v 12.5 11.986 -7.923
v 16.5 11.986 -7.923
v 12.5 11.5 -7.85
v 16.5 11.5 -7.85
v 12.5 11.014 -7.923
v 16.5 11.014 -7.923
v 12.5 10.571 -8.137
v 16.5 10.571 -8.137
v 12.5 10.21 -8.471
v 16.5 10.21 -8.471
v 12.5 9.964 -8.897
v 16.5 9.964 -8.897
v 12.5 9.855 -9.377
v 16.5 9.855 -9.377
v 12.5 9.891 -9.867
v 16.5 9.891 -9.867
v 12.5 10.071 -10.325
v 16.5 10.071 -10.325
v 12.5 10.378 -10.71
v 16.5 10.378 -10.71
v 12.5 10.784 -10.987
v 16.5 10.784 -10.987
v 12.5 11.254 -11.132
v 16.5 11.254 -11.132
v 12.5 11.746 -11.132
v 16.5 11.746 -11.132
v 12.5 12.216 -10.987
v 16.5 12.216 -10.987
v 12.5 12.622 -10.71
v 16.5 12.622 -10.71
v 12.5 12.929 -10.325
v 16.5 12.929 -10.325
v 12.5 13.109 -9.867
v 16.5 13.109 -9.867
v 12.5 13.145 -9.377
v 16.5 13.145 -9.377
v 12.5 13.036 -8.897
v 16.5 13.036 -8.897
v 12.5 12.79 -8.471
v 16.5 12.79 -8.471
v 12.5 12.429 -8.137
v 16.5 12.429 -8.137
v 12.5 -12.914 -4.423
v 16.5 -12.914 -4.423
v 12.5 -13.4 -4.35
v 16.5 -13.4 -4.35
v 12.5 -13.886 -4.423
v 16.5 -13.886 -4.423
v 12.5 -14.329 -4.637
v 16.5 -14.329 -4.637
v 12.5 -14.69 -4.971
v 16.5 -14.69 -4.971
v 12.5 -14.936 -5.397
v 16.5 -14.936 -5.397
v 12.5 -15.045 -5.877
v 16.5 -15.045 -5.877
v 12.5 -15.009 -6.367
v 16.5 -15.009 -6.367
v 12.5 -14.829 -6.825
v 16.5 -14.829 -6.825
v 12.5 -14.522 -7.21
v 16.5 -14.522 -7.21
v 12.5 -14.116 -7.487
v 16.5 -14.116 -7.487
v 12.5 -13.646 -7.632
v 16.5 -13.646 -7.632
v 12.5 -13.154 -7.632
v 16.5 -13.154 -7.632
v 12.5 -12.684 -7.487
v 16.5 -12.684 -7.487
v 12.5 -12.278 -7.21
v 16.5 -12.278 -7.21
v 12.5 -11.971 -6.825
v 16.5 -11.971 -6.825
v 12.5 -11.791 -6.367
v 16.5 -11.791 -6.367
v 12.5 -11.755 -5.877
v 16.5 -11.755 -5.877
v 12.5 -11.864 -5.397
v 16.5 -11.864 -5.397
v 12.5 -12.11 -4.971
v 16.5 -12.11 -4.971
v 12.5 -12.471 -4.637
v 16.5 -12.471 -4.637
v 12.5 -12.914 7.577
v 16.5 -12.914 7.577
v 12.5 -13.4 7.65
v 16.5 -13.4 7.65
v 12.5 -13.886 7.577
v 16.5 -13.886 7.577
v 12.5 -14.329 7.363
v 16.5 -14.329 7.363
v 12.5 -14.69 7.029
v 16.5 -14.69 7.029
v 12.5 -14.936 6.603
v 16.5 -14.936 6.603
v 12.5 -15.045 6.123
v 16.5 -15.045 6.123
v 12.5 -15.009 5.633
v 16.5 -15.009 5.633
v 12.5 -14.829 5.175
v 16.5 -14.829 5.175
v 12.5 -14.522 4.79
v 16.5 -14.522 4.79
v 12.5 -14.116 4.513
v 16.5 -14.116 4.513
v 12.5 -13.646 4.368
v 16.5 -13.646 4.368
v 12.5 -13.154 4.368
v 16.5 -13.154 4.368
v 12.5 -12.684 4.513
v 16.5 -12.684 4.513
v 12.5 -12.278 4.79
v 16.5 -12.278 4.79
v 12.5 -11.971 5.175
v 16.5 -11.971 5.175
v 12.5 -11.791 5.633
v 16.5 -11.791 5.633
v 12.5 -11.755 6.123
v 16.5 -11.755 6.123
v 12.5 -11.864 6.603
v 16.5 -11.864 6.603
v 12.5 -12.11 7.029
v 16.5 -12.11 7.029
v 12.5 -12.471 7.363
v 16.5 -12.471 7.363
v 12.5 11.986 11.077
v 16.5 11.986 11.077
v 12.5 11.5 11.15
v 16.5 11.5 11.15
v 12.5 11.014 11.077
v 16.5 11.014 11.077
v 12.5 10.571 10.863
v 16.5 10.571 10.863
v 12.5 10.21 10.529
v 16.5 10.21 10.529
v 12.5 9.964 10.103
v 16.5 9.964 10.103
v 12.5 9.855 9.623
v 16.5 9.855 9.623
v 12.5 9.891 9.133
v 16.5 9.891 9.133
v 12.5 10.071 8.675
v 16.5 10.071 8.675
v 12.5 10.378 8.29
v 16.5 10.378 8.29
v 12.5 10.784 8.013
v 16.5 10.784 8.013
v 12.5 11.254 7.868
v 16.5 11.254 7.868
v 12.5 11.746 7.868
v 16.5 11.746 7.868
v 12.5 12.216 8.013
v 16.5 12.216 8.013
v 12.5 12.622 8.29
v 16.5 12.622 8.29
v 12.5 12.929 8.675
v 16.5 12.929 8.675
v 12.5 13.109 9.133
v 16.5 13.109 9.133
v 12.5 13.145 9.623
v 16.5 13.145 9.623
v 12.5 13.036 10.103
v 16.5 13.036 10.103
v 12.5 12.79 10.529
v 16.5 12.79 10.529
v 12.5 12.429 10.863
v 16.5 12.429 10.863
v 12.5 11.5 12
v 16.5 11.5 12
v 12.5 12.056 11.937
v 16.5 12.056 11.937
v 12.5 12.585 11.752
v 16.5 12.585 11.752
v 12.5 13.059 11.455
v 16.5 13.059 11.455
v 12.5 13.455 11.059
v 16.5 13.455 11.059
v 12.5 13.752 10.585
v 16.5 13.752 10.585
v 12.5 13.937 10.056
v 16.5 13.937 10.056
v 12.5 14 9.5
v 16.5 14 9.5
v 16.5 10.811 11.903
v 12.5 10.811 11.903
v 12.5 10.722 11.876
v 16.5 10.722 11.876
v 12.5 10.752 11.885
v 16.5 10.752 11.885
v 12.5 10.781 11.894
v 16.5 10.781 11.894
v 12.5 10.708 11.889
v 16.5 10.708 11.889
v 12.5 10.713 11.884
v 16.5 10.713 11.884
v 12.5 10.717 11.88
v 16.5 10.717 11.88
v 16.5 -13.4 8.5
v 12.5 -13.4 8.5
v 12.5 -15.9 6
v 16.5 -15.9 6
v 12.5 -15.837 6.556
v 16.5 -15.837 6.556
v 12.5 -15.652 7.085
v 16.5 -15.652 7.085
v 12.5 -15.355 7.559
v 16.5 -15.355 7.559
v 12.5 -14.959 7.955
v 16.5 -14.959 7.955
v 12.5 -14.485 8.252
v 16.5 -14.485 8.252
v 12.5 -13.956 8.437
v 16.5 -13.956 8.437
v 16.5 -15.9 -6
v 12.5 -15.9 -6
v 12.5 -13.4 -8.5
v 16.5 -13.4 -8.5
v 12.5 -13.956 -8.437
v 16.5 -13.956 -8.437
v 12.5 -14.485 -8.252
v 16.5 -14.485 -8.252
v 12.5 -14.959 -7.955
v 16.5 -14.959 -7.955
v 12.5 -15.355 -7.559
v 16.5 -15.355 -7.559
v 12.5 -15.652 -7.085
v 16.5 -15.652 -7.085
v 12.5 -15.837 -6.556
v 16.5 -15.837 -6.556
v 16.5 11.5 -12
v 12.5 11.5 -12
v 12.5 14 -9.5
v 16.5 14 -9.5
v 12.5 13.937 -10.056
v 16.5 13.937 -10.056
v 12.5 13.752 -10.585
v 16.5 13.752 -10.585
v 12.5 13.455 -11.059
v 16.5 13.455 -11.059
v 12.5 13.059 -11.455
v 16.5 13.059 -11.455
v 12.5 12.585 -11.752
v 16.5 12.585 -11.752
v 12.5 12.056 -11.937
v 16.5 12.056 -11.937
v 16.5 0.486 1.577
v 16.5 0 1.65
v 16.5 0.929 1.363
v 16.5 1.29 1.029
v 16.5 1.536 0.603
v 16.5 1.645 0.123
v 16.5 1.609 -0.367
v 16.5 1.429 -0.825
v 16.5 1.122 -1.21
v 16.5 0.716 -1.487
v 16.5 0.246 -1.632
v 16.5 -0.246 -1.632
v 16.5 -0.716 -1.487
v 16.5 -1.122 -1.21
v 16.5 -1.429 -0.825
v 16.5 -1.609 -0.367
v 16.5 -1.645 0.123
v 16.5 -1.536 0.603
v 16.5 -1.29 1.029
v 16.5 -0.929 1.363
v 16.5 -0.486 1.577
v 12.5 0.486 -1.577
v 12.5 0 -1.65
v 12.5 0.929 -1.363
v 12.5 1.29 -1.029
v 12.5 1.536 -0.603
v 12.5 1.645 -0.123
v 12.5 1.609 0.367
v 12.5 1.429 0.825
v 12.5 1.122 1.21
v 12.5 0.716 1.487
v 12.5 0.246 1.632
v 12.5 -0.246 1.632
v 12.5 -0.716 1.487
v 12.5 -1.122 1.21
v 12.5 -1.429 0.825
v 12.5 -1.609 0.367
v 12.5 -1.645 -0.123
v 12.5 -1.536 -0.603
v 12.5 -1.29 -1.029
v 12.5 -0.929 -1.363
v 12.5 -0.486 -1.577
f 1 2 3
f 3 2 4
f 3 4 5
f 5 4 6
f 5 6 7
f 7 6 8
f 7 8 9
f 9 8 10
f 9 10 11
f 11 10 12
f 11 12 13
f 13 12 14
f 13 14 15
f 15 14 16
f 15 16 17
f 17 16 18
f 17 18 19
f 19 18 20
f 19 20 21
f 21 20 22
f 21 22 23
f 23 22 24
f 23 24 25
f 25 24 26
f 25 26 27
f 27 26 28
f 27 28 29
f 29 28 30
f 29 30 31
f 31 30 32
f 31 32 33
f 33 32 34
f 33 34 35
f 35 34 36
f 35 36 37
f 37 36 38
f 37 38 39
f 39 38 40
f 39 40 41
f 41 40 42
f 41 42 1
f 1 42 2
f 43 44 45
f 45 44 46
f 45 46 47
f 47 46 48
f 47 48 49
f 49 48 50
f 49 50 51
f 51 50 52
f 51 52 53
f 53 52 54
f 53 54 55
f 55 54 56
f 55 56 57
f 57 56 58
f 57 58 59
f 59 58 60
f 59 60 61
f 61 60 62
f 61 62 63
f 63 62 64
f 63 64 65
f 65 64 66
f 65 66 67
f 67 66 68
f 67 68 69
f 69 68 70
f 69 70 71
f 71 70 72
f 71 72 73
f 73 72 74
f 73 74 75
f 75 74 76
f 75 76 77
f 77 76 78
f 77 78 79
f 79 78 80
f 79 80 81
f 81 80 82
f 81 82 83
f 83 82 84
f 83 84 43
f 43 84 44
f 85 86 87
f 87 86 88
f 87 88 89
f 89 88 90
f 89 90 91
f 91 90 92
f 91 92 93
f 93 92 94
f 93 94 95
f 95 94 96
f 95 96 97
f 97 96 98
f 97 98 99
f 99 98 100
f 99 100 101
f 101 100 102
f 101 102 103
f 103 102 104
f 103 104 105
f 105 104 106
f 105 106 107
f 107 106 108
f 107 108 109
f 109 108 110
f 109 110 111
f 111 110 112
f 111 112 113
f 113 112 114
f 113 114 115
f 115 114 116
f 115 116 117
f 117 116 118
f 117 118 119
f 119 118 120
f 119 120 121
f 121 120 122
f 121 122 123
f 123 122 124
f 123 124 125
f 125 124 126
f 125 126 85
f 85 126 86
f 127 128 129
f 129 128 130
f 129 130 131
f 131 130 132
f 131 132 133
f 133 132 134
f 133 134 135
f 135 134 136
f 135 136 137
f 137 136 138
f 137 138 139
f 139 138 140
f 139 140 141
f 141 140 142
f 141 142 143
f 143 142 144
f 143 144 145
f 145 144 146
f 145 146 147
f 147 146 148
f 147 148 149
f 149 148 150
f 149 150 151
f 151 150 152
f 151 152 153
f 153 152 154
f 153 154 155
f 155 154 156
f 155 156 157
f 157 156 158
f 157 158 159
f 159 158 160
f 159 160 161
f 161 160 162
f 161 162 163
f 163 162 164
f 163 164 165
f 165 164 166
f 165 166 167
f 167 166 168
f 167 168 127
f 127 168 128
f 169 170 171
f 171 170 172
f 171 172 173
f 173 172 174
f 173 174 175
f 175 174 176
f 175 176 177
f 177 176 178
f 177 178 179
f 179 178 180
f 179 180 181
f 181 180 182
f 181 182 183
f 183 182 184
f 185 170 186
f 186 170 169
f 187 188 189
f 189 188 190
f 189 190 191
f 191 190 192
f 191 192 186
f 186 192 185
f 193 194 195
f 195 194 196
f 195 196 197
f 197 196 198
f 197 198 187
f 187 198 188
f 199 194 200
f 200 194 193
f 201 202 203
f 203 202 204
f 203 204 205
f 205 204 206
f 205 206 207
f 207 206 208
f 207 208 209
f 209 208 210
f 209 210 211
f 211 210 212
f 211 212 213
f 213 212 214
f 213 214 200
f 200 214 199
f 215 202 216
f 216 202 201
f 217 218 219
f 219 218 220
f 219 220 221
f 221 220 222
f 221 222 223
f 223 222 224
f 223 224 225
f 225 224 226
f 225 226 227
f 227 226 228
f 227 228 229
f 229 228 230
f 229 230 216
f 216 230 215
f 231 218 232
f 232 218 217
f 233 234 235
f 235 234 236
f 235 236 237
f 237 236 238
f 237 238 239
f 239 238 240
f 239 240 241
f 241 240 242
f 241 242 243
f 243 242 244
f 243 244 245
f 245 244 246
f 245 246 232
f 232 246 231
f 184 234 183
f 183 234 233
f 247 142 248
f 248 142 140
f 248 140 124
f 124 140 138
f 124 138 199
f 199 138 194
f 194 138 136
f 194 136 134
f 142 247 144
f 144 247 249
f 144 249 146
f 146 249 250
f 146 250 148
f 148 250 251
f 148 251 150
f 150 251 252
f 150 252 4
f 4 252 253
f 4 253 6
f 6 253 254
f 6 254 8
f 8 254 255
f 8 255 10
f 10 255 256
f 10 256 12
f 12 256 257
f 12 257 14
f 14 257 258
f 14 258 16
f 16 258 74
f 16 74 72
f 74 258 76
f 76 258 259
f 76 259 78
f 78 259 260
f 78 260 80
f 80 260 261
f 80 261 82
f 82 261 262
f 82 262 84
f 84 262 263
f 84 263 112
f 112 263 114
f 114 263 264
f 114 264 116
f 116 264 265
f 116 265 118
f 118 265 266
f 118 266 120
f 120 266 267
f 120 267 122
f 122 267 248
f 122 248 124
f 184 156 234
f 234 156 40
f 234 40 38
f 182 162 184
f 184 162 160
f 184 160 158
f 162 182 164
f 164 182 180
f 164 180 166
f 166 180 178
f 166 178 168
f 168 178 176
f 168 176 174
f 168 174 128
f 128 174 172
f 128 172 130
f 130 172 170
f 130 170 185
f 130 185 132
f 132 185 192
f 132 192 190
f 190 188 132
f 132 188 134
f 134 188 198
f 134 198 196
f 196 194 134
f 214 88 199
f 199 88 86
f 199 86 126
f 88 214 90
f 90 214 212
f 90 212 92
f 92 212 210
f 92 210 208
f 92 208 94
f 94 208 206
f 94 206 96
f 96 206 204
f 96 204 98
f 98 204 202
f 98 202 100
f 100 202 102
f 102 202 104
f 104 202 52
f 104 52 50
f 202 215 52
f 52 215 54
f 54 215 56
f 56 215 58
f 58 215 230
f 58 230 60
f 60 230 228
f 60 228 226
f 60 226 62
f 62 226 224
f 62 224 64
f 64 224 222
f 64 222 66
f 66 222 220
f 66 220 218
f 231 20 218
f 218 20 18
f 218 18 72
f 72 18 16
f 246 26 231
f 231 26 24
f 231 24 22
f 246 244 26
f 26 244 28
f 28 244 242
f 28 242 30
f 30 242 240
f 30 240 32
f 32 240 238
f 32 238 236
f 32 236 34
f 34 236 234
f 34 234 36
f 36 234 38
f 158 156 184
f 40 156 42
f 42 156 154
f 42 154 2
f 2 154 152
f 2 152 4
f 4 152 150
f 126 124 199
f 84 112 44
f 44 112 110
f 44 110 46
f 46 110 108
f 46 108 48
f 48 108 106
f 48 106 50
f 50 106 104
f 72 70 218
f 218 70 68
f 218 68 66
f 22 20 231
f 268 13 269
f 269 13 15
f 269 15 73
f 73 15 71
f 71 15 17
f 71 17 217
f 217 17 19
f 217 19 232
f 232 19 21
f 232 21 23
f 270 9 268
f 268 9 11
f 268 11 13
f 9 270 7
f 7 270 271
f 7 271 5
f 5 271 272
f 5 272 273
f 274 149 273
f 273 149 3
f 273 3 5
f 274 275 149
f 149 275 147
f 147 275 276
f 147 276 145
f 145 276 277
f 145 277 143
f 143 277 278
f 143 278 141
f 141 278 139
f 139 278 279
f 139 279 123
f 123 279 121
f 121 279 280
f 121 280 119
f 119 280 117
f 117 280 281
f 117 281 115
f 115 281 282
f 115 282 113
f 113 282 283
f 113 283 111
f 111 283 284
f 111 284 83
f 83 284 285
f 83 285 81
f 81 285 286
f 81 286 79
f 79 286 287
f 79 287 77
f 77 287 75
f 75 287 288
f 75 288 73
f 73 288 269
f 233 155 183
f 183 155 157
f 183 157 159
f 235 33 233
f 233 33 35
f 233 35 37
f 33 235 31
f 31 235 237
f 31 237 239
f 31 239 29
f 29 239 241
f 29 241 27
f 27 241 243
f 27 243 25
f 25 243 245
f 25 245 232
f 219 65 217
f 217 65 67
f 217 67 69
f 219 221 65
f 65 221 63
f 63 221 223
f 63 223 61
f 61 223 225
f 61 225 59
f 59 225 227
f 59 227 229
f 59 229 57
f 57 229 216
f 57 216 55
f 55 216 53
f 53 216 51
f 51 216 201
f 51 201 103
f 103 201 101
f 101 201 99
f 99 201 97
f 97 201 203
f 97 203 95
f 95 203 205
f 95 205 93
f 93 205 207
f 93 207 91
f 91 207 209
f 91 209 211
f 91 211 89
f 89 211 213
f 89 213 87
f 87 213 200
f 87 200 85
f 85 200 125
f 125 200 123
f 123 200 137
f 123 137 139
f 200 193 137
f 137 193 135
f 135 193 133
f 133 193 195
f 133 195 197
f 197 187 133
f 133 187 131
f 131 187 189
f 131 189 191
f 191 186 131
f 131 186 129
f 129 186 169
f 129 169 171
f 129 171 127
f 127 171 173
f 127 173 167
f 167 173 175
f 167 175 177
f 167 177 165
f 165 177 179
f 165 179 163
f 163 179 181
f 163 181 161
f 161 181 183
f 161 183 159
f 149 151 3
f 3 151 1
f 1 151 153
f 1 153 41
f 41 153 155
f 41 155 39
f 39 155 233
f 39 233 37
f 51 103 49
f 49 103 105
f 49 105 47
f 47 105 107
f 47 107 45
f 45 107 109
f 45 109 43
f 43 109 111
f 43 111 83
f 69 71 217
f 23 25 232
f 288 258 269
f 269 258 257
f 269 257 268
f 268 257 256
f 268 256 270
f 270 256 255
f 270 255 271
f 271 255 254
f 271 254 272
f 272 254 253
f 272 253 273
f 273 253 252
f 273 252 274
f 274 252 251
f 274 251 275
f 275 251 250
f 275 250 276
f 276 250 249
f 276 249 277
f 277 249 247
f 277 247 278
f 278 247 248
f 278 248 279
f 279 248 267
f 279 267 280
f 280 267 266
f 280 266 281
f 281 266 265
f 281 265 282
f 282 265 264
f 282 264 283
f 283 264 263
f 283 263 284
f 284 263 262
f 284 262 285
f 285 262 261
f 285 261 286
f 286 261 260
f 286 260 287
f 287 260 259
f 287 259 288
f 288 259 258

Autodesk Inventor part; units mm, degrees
ref_plane "YZ Plane" through (0, 0, 0) normal (1, 0, 0) x (0, 1, 0)
ref_plane "XZ Plane" through (0, 0, 0) normal (0, 1, 0) x (-1, 0, 0)
ref_plane "XY Plane" through (0, 0, 0) normal (0, 0, 1) x (1, 0, 0)
sketch "スケッチ2" plane through (0, 0, 0) normal (0, 1, 0) x (-1, 0, 0)
  line L0 (-32.5, -11.25) -> (32.5, -11.25)
  line L1 (32.5, -11.25) -> (32.5, 11.25)
  line L2 (32.5, 11.25) -> (-32.5, 11.25)
  line L3 (-32.5, 11.25) -> (-32.5, -11.25)
  line L4 (-32.5, -11.25) -> (32.5, 11.25) construction
  line L5 (32.5, -11.25) -> (-32.5, 11.25) construction
  line L6 (-30, -8.75) -> (30, -8.75)
  line L7 (30, -8.75) -> (30, 8.75)
  line L8 (30, 8.75) -> (-30, 8.75)
  line L9 (-30, 8.75) -> (-30, -8.75)
  line L10 (-30, -8.75) -> (30, 8.75) construction
  line L11 (30, -8.75) -> (-30, 8.75) construction
  circle A0 centre (30, 8.75) radius 2.5
  circle A1 centre (30, -8.75) radius 2.5
  circle A2 centre (-30, 8.75) radius 2.5
  circle A3 centre (-30, -8.75) radius 2.5
  line L12 (-115, -18.25) -> (115, -18.25)
  line L13 (115, -18.25) -> (115, 18.25)
  line L14 (115, 18.25) -> (-115, 18.25)
  line L15 (-115, 18.25) -> (-115, -18.25)
  line L16 (-115, -18.25) -> (115, 18.25) construction
  line L17 (115, -18.25) -> (-115, 18.25) construction
  line L18 (-95, -18.25) -> (95, -18.25)
  line L19 (95, -18.25) -> (95, 18.25)
  line L20 (95, 18.25) -> (-95, 18.25)
  line L21 (-95, 18.25) -> (-95, -18.25)
  line L22 (-95, -18.25) -> (95, 18.25) construction
  line L23 (95, -18.25) -> (-95, 18.25) construction
  point P0 (0, 0)
  dimension "d10" = 65
  dimension "d11" = 22.5
  dimension "d12" = 60
  dimension "d13" = 17.5
  dimension "d14" = 230
  dimension "d15" = 36.5
  dimension "d16" = 190
sketch "スケッチ4" plane through (0, 0, 0) normal (1, 0, 0) x (0, 1, 0)
  point P0 (0, 0)
sketch "スケッチ5" plane through (0, 0, 0) normal (1, 0, 0) x (0, 1, 0)
  circle A0 centre (0, 0) radius 18.25
  line L0 (0, 0) -> (0, 6)
  line L1 (0, 6) -> (0, -6)
  circle A1 centre (0, 6) radius 3
  circle A2 centre (0, -6) radius 9
  circle A3 centre (0, 6) radius 9
  circle A4 centre (0, -6) radius 3
  line L2 (0, 6) -> (5.2915, 0)
  circle A5 centre (5.2915, 0) radius 5
  circle A6 centre (5.2915, 0) radius 4.5
  circle A7 centre (5.2915, 0) radius 5.5
  line L3 (0, 0) -> (0, 11.25)
  line L4 (0, 11.25) -> (0, -11.25)
  line L5 (5.2915, 5.5) -> (5.2915, -5.5)
  line L6 (0, 11.25) -> (-1.2, 11.25)
  line L7 (-1.2, 11.25) -> (-1.2, -11.25)
  line L8 (-1.2, -11.25) -> (0, -11.25)
  line L9 (-1.2, 11.25) -> (-9.2, 11.25)
  line L10 (-1.2, -11.25) -> (-9.2, -11.25)
  line L11 (-9.2, -11.25) -> (-9.2, 11.25)
  line L12 (-9.2, 11.25) -> (-10.4, 11.25)
  line L13 (-10.4, 11.25) -> (-10.4, -11.25)
  line L14 (-10.4, -11.25) -> (-9.2, -11.25)
  circle A8 centre (0, 0) radius 16
  line L15 (0, 11.25) -> (1.5, 11.25)
  line L16 (1.5, 11.25) -> (1.5, -11.25)
  line L17 (1.5, -11.25) -> (0, -11.25)
  line L18 (5.2915, 5.5) -> (1.5, 5.5)
  line L19 (5.2915, -5.5) -> (1.5, -5.5)
  circle A9 centre (5.2915, 0) radius 6.6802
  point P0 (0, 1.5)
  point P1 (0, -1.5)
  point P2 (1.5, -3.9843)
  point P3 (1.5, 3.9843)
  dimension "d28" = 36.5
  dimension "d29" = 6
  dimension "d30" = 12
  dimension "d31" = 6
  dimension "d32" = 18
  dimension "d33" = 8
  dimension "d34" = 9
  dimension "d35" = 11
  dimension "d36" = 11.25
  dimension "d37" = 22.5
  dimension "d39" = 1.2
  dimension "d40" = 8
  dimension "d41" = 1.2
  dimension "d42" = 32
  dimension "d43" = 1.5
ref_plane "作業平面1" through (16.5, 5.2915, 0) normal (1, 0, 0) x (0, 0, 1)
sketch "スケッチ6" plane through (16.5, 5.2915, 0) normal (1, 0, 0) x (0, 0, 1)
  line L0 (0, 5.2915) -> (6, 5.2915)
  line L1 (-11.25, 5.2915) -> (11.25, 5.2915) projected
  line L2 (6, 5.2915) -> (-6, 5.2915)
  circle A0 centre (6, 5.2915) radius 1.05
  circle A1 centre (-6, 5.2915) radius 1.05
  circle A2 centre (0, 5.2915) radius 16
  circle A3 centre (0, 0) radius 5
  line L3 (0, 0) -> (0, 3)
  line L4 (0, 3) -> (0, -5.5)
  arc A4 (-5.5, 0) -> (5.5, 0) centre (0, 0) ccw projected
  line L5 (0, 3) -> (1, 3)
  line L6 (1, 3) -> (-1, 3)
  line L7 (-1, 3) -> (-1, -5.4083)
  line L8 (1, 3) -> (1, -5.4083)
  circle A5 centre (6, 5.2915) radius 9
  circle A6 centre (-6, 5.2915) radius 9
  line L9 (0, 5.2915) -> (0, -2.7085)
  circle A7 centre (0, -2.7085) radius 8
  circle A8 centre (6, 5.2915) radius 10
  circle A9 centre (-6, 5.2915) radius 10
  line L10 (0, 5.2915) -> (0, -5.7085)
  line L11 (0, -5.7085) -> (-11.619, -5.7085)
  line L12 (0, -5.7085) -> (11.619, -5.7085)
  line L13 (0, -5.7085) -> (9.5, -5.7085)
  line L14 (9.5, -5.7085) -> (-9.5, -5.7085)
  circle A10 centre (0, 5.2915) radius 18
  line L15 (1, -5.4083) -> (1, -8.2085)
  line L16 (-1, -5.4083) -> (-1, -8.2085)
  line L17 (0, 5.2915) -> (0, 6.4915)
  line L18 (0, 6.4915) -> (0, 14.4915)
  line L19 (0, 14.4915) -> (0, 15.6915)
  line L20 (0, 15.6915) -> (-11.25, 15.6915)
  line L21 (-11.25, 15.6915) -> (11.25, 15.6915)
  line L22 (11.25, 15.6915) -> (11.25, 14.4915)
  line L23 (11.25, 14.4915) -> (0, 14.4915)
  line L24 (-11.25, 14.4915) -> (-11.25, 15.6915)
  line L25 (0, 14.4915) -> (-11.25, 14.4915)
  line L26 (0, 15.6915) -> (8.75, 15.6915)
  line L27 (8.75, 15.6915) -> (-8.75, 15.6915)
  line L28 (11.25, 15.6915) -> (11.25, 17.1915)
  line L29 (11.25, 17.1915) -> (-11.25, 17.1915)
  line L30 (-11.25, 17.1915) -> (-11.25, 15.6915)
  line L31 (6, 17.1915) -> (6, 18.6915)
  line L32 (-6, 17.1915) -> (-6, 18.6915)
  circle A11 centre (6, 18.6915) radius 2.5
  circle A12 centre (-6, 18.6915) radius 2.5
  line L33 (6, 21.1915) -> (-6, 21.1915)
  line L34 (9.5, -5.7085) -> (12, -5.7085)
  line L35 (-9.5, -5.7085) -> (-12, -5.7085)
  line L36 (6, 18.6915) -> (8.5, 18.6915)
  line L37 (-6, 18.6915) -> (-8.5, 18.6915)
  circle A13 centre (0, 0) radius 4.5
  circle A14 centre (-6, 5.2915) radius 1.5
  circle A15 centre (6, 5.2915) radius 1.5
  circle A16 centre (6, 18.6915) radius 1.65
  circle A17 centre (-6, 18.6915) radius 1.65
  line L38 (9.5, -5.7085) -> (9.5, -6.2085)
  line L39 (9.5, -6.2085) -> (-9.5, -6.2085)
  line L40 (-9.5, -6.2085) -> (-9.5, -5.7085)
  circle A18 centre (-9.5, -6.2085) radius 1.65
  circle A19 centre (9.5, -6.2085) radius 1.65
  circle A20 centre (9.5, -6.2085) radius 2.5
  circle A21 centre (-9.5, -6.2085) radius 2.5
  line L41 (-12, -6.2085) -> (-8.5, 18.6915)
  line L42 (12, -6.2085) -> (8.5, 18.6915)
  line L43 (9.5, -8.7085) -> (-9.5, -8.7085)
  line L44 (1, -8.7085) -> (1, -8.0358)
  line L45 (-1, -8.7085) -> (-1, -8.2085)
  point P0 (1, -4.3875)
  point P1 (-1, -4.3875)
  point P2 (-4.4567, 20.6583)
  point P3 (-8.495, 18.8501)
  point P4 (4.4567, 20.6583)
  point P5 (8.495, 18.8501)
  point P6 (1.7861, 21.1915)
  point P7 (-1.7861, 21.1915)
  point P8 (11.9031, -5.5193)
  point P9 (11.8759, -5.4306)
  point P10 (11.8887, -5.4164)
  dimension "d54" = 6
  dimension "d55" = 12
  dimension "d56" = 2.1
  dimension "d57" = 2.1
  dimension "d58" = 32
  dimension "d59" = 10
  dimension "d60" = 3
  dimension "d61" = 1
  dimension "d62" = 2
  dimension "d65" = 18
  dimension "d66" = 18
  dimension "d67" = 8
  dimension "d68" = 11
  dimension "d69" = 9.5
  dimension "d70" = 19
  dimension "d73" = 36
  dimension "d76" = 1.2
  dimension "d77" = 8
  dimension "d78" = 1.2
  dimension "d79" = 8.75
  dimension "d80" = 17.5
  dimension "d81" = 1.5
  dimension "d82" = 1.5
  dimension "d83" = 5
  dimension "d84" = 5
  dimension "d97" = 3
  dimension "d98" = 3
  dimension "d109" = 3.3
  dimension "d110" = 3.3
  dimension "d111" = 0.5
  dimension "d112" = 3.3
  dimension "d113" = 3.3
  dimension "d114" = 5
  dimension "d115" = 5
extrude "押し出し11" add sketch "スケッチ6" against normal blind 4 contours L17 L18 A6 L0 | A7 A5 L1 | A7 A6 A3 L9 | L0 A6 A7 | L9 A3 A5 A7 | L1 A5 L18 L17 | A6 A5 A9 L0 | L0 A9 A7 A6 | A5 A7 A8 L1 | L1 A8 A6 A5 | L9 A13 A5 A3 | A3 A6 A13 L9 | A7 A9 A3 A6 | A5 A3 A8 A7 | A9 A5 L42 L1 A15 L0 | L0 A15 L1 L42 A5 A7 A9 | L18 A9 A5 | A6 A8 L18 | A8 A7 A6 L41 L1 A14 | L1 A14 L41 A6 A8 | A3 A9 A13 A6 | A5 A13 A8 A3 | A13 A6 L8 L5 L9 | L9 L6 L7 A5 A13 | A7 A5 A3 A9 | A8 A3 A6 A7 | A15 L1 A0 L0 | L0 A0 L1 A15 | A9 A8 L23 L42 A5 | A6 L41 L25 A9 A8 | L18 L23 A8 | A9 L25 L18 | A14 L1 A1 | L1 A1 A14 | A3 A5 A13 A9 | A13 A9 L8 A6 | A8 A13 A6 A3 | A5 L7 A8 A13 | L5 L8 A6 L4 L3 | L3 L4 A5 L7 L6 | A7 A21 A9 L41 A6 | A6 A4 A9 A21 A7 | A0 L1 L0 | L0 L1 A0 | L23 L19 L21 L42 A8 | A8 L42 L23 | L25 L41 A9 | A9 L41 L20 L19 L25 | A1 L1 | L1 A1 | A13 A5 L8 A9 | L8 A9 A5 A6 | A6 A13 A9 A3 | A3 A9 A4 A6 | A8 L7 A6 A13 | A5 A6 A8 L7 | A7 A20 A8 A4 A5 | A5 L42 A8 A20 A7 | A21 A9 A7 | A7 A9 A21 | L20 L41 L29 A12 A11 L42 L21 | A5 A4 A8 A3 | A3 A8 A13 A5 | L8 A5 A9 | A5 A9 L4 | L4 A8 A6 | A9 A13 L7 A3 | A3 L7 A4 A9 | A6 L7 A9 A13 | A8 A6 L7 | A20 A8 A7 | A7 A8 A20 | A9 A21 A2 L41 | A4 L16 L11 A21 A9 | A9 A21 L11 A7 | A7 L11 A18 A2 A21 A9 | A8 A4 L8 A3 | A3 L8 A13 A8 | A13 A8 L8 A5 | L8 A8 A9 A5 | A8 L8 A13 L4 | A9 L7 A6 A8 | L4 A13 L7 A9 | L7 A13 L4 A3 | A3 L4 A4 L7 | A9 L7 A13 | A8 A20 L12 L15 A4 | L42 A2 A20 A8 | A8 A20 A2 L12 A19 A7 | A7 L12 A20 A8 | A2 A21 L41 | A4 L10 L11 L16 | L11 A21 L39 A7 | A7 L39 A18 L11 | L11 L16 L39 A21 | A2 L35 L41 A21 | L29 A11 L42 | L41 A12 L29 | L8 A4 L4 A3 | A3 L4 A13 L8 | A13 L8 A8 | L15 L12 L10 A4 | L12 A19 L39 A7 | A7 L39 A20 L12 | A20 L42 L34 A2 | A20 L39 L15 L12 | L11 L12 L15 L39 L16 | L39 A21 A7 | A7 A21 A2 A18 L39 | L39 L16 L45 L43 A7 A21 | L11 A18 A2 | A2 A18 A21 L41 L35 | A11 L29 A16 | L29 A16 L36 A11 | L36 A16 A2 A11 | A12 L37 A17 L29 | L29 A17 A12 | A12 A2 A17 L37 | L39 A19 A2 A20 A7 | A7 A20 L39 | L34 L42 A20 A2 A19 | A2 A19 L12 | A20 A7 L43 L44 L15 L39 | L39 L15 L44 L43 L45 L16 | A7 L43 A2 A21 | A2 A16 A11 | A11 A2 A16 L29 | L29 A12 A2 L33 A11 | L29 A17 A2 A12 | A12 A2 A17 | A20 A2 L43 A7 | A2 L43 A21 | A11 A2 L33 | L33 A2 A12 | A20 L43 A2 picked at (5.1751, 14.7127) picked at (-5.1751, 14.7127)
hole "穴2" at (16.5, 0, 0) direction (-1, 0, 0) diameter 3.3 end through all
properties part number "ikafly1c"
